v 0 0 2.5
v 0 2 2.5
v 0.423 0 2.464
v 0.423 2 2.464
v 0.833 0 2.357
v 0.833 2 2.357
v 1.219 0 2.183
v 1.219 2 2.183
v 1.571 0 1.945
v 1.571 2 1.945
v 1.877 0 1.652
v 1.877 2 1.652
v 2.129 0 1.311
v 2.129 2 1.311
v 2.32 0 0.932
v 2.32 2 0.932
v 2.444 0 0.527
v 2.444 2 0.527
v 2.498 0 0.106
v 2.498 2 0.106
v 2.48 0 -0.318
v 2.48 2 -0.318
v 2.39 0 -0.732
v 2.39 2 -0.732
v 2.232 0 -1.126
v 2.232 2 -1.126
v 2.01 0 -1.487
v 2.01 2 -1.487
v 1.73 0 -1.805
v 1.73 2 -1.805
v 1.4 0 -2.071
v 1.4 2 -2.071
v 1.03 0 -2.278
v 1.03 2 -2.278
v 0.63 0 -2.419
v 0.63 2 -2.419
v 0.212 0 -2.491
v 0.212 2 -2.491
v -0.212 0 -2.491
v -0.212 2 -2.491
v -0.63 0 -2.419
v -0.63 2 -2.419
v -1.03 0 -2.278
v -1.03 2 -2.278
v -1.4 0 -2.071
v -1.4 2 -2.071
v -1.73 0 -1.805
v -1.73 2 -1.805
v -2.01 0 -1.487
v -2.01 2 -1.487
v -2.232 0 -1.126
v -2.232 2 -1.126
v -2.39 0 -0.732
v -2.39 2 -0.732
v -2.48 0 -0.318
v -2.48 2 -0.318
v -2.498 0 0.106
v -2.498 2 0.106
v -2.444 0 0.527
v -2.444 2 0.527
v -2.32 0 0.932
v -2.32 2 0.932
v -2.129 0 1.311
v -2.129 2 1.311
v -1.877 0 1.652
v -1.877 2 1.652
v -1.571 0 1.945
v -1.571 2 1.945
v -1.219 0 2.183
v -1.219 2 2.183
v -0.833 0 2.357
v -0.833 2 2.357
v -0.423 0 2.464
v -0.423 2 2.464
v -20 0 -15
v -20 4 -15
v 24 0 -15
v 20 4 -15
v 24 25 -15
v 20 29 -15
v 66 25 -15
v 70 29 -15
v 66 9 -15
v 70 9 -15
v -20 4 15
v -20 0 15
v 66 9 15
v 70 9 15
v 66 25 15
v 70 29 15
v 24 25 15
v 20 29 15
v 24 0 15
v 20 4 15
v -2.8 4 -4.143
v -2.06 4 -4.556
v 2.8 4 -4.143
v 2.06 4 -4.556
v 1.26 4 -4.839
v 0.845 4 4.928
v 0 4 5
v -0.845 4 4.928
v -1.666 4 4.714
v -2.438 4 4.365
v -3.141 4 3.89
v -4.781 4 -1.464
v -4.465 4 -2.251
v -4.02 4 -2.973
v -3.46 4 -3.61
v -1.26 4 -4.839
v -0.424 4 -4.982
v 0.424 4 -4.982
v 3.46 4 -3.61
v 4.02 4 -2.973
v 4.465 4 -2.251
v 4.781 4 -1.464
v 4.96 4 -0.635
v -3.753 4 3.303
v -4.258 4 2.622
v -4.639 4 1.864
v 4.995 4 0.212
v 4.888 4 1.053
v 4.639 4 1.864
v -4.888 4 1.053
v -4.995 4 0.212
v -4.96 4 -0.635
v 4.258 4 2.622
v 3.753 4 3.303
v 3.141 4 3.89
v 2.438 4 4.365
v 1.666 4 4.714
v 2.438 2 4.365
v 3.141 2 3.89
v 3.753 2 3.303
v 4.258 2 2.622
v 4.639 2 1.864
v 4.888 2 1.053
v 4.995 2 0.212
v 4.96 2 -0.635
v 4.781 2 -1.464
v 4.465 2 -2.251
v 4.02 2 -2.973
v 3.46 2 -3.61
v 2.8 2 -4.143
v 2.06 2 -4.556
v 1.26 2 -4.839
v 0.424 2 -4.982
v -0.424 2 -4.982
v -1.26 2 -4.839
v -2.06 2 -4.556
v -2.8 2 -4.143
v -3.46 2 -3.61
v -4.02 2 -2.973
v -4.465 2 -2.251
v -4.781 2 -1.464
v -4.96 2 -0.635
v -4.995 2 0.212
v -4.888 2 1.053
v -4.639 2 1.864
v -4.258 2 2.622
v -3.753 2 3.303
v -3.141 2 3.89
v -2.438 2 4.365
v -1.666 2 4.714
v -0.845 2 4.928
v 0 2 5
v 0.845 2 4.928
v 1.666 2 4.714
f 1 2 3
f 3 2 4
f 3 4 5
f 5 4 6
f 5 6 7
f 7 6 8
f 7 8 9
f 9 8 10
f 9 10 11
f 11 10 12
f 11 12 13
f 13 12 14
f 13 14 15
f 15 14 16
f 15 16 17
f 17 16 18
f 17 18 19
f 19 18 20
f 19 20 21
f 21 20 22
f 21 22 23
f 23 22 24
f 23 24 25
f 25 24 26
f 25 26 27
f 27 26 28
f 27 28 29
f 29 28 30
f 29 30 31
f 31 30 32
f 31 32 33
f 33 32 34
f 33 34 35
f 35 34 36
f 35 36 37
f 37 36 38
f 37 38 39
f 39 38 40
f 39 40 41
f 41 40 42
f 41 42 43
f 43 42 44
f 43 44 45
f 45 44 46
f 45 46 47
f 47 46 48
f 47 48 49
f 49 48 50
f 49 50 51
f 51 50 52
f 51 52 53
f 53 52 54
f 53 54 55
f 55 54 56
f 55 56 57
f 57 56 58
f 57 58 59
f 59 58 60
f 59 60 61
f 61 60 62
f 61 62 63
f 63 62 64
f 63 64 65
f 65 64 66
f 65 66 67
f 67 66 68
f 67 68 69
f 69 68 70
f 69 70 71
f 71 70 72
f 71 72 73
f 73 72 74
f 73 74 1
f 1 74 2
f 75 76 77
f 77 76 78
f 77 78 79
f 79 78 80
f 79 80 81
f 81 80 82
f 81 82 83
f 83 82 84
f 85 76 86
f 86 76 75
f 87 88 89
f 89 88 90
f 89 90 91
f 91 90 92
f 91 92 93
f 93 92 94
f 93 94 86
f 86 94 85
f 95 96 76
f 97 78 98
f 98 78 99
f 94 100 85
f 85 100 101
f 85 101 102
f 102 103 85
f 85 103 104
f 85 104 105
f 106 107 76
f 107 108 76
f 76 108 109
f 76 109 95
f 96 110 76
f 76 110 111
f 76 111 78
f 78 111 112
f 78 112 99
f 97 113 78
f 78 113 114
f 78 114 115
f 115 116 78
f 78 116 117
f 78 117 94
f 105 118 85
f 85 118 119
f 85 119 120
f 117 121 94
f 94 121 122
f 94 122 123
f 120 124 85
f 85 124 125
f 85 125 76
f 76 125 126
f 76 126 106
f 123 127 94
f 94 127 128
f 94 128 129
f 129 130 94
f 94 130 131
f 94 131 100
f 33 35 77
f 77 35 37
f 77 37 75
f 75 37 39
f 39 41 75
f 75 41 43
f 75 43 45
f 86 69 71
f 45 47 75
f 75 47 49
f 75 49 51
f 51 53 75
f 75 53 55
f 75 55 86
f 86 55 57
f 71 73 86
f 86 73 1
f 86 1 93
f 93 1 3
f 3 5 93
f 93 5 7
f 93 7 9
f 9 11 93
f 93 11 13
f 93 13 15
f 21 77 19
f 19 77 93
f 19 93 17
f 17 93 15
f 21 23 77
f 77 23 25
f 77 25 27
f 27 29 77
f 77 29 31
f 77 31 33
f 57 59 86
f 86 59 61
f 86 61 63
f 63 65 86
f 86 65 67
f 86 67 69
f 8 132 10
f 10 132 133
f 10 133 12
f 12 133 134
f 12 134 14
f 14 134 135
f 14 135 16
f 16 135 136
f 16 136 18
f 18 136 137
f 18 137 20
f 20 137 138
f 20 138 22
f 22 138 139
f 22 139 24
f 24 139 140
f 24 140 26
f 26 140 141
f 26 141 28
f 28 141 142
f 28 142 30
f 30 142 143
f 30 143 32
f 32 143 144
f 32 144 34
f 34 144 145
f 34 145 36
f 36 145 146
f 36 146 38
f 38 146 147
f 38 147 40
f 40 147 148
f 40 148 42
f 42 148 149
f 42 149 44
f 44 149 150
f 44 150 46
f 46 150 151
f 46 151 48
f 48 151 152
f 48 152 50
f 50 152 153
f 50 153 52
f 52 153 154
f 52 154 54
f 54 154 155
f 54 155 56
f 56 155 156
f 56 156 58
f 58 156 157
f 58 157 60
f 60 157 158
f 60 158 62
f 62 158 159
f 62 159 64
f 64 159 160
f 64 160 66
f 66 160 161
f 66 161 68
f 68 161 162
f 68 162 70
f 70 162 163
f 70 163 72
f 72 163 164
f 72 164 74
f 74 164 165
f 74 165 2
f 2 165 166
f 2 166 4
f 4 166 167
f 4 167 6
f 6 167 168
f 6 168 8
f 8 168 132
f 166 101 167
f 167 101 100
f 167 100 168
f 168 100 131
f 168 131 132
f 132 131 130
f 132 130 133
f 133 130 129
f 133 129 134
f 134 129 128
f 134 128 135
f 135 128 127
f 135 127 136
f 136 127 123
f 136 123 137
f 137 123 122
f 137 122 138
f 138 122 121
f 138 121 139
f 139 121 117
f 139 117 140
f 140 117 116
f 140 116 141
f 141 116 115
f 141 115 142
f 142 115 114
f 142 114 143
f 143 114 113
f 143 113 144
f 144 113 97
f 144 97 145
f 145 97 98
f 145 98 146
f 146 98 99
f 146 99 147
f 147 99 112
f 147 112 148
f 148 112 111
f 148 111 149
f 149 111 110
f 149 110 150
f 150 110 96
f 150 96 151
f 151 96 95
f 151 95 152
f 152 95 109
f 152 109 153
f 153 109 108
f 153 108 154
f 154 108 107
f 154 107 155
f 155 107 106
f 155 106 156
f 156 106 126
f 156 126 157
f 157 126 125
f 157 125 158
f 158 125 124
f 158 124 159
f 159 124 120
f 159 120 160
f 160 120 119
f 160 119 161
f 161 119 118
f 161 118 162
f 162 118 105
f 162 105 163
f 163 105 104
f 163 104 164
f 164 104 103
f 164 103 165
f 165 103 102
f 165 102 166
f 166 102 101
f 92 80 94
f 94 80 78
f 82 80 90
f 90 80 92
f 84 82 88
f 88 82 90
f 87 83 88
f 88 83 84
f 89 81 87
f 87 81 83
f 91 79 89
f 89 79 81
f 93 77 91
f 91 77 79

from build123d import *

# Parameters (mm, degrees)
SKETCH1_W           = 40
SKETCH1_H           = 30
BOSS_EXTRUDE1_DEPTH = 4
SKETCH2_R           = 2.5
CUT_EXTRUDE1_DEPTH  = 26.317977802
SKETCH3_R           = 5
CUT_EXTRUDE2_DEPTH  = 2
BOSS_EXTRUDE2_DEPTH = 30


with BuildPart() as part:
    # Sketch1 → Boss-Extrude1 (new body)
    with BuildSketch(Plane(origin=(0, 0, 0), x_dir=(1, 0, 0), z_dir=(0, 1, 0))):
        Rectangle(SKETCH1_W, SKETCH1_H)
    extrude(amount=BOSS_EXTRUDE1_DEPTH)

    # Sketch2 → Cut-Extrude1 (cut, through all)
    with BuildSketch(Plane(origin=(0, 4, 0), x_dir=(1, 0, 0), z_dir=(0, 1, 0))):
        with Locations(Location((0, 0, 0), (0, 0, 270))):
            Circle(SKETCH2_R)
    extrude(amount=-CUT_EXTRUDE1_DEPTH, mode=Mode.SUBTRACT)

    # Sketch3 → Cut-Extrude2 (cut)
    with BuildSketch(Plane(origin=(0, 4, 0), x_dir=(1, 0, 0), z_dir=(0, 1, 0))):
        with Locations(Location((0, 0, 0), (0, 0, 270))):
            Circle(SKETCH3_R)
    extrude(amount=-CUT_EXTRUDE2_DEPTH, mode=Mode.SUBTRACT)

    # Sketch4 → Boss-Extrude2 (add)
    with BuildSketch(Plane(origin=(0, 0, -15), x_dir=(-1, 0, 0), z_dir=(0, 0, -1))):
        Polygon((-24, 0), (-20, 0), (-20, 4), (-20, 25), (-24, 25), align=None)
        Polygon((-66, 25), (-24, 25), (-20, 25), (-20, 29), (-66, 29), align=None)
        Polygon((-66, 9), (-66, 25), (-66, 29), (-70, 29), (-70, 9), align=None)
    extrude(amount=-BOSS_EXTRUDE2_DEPTH)


solid = part.part
